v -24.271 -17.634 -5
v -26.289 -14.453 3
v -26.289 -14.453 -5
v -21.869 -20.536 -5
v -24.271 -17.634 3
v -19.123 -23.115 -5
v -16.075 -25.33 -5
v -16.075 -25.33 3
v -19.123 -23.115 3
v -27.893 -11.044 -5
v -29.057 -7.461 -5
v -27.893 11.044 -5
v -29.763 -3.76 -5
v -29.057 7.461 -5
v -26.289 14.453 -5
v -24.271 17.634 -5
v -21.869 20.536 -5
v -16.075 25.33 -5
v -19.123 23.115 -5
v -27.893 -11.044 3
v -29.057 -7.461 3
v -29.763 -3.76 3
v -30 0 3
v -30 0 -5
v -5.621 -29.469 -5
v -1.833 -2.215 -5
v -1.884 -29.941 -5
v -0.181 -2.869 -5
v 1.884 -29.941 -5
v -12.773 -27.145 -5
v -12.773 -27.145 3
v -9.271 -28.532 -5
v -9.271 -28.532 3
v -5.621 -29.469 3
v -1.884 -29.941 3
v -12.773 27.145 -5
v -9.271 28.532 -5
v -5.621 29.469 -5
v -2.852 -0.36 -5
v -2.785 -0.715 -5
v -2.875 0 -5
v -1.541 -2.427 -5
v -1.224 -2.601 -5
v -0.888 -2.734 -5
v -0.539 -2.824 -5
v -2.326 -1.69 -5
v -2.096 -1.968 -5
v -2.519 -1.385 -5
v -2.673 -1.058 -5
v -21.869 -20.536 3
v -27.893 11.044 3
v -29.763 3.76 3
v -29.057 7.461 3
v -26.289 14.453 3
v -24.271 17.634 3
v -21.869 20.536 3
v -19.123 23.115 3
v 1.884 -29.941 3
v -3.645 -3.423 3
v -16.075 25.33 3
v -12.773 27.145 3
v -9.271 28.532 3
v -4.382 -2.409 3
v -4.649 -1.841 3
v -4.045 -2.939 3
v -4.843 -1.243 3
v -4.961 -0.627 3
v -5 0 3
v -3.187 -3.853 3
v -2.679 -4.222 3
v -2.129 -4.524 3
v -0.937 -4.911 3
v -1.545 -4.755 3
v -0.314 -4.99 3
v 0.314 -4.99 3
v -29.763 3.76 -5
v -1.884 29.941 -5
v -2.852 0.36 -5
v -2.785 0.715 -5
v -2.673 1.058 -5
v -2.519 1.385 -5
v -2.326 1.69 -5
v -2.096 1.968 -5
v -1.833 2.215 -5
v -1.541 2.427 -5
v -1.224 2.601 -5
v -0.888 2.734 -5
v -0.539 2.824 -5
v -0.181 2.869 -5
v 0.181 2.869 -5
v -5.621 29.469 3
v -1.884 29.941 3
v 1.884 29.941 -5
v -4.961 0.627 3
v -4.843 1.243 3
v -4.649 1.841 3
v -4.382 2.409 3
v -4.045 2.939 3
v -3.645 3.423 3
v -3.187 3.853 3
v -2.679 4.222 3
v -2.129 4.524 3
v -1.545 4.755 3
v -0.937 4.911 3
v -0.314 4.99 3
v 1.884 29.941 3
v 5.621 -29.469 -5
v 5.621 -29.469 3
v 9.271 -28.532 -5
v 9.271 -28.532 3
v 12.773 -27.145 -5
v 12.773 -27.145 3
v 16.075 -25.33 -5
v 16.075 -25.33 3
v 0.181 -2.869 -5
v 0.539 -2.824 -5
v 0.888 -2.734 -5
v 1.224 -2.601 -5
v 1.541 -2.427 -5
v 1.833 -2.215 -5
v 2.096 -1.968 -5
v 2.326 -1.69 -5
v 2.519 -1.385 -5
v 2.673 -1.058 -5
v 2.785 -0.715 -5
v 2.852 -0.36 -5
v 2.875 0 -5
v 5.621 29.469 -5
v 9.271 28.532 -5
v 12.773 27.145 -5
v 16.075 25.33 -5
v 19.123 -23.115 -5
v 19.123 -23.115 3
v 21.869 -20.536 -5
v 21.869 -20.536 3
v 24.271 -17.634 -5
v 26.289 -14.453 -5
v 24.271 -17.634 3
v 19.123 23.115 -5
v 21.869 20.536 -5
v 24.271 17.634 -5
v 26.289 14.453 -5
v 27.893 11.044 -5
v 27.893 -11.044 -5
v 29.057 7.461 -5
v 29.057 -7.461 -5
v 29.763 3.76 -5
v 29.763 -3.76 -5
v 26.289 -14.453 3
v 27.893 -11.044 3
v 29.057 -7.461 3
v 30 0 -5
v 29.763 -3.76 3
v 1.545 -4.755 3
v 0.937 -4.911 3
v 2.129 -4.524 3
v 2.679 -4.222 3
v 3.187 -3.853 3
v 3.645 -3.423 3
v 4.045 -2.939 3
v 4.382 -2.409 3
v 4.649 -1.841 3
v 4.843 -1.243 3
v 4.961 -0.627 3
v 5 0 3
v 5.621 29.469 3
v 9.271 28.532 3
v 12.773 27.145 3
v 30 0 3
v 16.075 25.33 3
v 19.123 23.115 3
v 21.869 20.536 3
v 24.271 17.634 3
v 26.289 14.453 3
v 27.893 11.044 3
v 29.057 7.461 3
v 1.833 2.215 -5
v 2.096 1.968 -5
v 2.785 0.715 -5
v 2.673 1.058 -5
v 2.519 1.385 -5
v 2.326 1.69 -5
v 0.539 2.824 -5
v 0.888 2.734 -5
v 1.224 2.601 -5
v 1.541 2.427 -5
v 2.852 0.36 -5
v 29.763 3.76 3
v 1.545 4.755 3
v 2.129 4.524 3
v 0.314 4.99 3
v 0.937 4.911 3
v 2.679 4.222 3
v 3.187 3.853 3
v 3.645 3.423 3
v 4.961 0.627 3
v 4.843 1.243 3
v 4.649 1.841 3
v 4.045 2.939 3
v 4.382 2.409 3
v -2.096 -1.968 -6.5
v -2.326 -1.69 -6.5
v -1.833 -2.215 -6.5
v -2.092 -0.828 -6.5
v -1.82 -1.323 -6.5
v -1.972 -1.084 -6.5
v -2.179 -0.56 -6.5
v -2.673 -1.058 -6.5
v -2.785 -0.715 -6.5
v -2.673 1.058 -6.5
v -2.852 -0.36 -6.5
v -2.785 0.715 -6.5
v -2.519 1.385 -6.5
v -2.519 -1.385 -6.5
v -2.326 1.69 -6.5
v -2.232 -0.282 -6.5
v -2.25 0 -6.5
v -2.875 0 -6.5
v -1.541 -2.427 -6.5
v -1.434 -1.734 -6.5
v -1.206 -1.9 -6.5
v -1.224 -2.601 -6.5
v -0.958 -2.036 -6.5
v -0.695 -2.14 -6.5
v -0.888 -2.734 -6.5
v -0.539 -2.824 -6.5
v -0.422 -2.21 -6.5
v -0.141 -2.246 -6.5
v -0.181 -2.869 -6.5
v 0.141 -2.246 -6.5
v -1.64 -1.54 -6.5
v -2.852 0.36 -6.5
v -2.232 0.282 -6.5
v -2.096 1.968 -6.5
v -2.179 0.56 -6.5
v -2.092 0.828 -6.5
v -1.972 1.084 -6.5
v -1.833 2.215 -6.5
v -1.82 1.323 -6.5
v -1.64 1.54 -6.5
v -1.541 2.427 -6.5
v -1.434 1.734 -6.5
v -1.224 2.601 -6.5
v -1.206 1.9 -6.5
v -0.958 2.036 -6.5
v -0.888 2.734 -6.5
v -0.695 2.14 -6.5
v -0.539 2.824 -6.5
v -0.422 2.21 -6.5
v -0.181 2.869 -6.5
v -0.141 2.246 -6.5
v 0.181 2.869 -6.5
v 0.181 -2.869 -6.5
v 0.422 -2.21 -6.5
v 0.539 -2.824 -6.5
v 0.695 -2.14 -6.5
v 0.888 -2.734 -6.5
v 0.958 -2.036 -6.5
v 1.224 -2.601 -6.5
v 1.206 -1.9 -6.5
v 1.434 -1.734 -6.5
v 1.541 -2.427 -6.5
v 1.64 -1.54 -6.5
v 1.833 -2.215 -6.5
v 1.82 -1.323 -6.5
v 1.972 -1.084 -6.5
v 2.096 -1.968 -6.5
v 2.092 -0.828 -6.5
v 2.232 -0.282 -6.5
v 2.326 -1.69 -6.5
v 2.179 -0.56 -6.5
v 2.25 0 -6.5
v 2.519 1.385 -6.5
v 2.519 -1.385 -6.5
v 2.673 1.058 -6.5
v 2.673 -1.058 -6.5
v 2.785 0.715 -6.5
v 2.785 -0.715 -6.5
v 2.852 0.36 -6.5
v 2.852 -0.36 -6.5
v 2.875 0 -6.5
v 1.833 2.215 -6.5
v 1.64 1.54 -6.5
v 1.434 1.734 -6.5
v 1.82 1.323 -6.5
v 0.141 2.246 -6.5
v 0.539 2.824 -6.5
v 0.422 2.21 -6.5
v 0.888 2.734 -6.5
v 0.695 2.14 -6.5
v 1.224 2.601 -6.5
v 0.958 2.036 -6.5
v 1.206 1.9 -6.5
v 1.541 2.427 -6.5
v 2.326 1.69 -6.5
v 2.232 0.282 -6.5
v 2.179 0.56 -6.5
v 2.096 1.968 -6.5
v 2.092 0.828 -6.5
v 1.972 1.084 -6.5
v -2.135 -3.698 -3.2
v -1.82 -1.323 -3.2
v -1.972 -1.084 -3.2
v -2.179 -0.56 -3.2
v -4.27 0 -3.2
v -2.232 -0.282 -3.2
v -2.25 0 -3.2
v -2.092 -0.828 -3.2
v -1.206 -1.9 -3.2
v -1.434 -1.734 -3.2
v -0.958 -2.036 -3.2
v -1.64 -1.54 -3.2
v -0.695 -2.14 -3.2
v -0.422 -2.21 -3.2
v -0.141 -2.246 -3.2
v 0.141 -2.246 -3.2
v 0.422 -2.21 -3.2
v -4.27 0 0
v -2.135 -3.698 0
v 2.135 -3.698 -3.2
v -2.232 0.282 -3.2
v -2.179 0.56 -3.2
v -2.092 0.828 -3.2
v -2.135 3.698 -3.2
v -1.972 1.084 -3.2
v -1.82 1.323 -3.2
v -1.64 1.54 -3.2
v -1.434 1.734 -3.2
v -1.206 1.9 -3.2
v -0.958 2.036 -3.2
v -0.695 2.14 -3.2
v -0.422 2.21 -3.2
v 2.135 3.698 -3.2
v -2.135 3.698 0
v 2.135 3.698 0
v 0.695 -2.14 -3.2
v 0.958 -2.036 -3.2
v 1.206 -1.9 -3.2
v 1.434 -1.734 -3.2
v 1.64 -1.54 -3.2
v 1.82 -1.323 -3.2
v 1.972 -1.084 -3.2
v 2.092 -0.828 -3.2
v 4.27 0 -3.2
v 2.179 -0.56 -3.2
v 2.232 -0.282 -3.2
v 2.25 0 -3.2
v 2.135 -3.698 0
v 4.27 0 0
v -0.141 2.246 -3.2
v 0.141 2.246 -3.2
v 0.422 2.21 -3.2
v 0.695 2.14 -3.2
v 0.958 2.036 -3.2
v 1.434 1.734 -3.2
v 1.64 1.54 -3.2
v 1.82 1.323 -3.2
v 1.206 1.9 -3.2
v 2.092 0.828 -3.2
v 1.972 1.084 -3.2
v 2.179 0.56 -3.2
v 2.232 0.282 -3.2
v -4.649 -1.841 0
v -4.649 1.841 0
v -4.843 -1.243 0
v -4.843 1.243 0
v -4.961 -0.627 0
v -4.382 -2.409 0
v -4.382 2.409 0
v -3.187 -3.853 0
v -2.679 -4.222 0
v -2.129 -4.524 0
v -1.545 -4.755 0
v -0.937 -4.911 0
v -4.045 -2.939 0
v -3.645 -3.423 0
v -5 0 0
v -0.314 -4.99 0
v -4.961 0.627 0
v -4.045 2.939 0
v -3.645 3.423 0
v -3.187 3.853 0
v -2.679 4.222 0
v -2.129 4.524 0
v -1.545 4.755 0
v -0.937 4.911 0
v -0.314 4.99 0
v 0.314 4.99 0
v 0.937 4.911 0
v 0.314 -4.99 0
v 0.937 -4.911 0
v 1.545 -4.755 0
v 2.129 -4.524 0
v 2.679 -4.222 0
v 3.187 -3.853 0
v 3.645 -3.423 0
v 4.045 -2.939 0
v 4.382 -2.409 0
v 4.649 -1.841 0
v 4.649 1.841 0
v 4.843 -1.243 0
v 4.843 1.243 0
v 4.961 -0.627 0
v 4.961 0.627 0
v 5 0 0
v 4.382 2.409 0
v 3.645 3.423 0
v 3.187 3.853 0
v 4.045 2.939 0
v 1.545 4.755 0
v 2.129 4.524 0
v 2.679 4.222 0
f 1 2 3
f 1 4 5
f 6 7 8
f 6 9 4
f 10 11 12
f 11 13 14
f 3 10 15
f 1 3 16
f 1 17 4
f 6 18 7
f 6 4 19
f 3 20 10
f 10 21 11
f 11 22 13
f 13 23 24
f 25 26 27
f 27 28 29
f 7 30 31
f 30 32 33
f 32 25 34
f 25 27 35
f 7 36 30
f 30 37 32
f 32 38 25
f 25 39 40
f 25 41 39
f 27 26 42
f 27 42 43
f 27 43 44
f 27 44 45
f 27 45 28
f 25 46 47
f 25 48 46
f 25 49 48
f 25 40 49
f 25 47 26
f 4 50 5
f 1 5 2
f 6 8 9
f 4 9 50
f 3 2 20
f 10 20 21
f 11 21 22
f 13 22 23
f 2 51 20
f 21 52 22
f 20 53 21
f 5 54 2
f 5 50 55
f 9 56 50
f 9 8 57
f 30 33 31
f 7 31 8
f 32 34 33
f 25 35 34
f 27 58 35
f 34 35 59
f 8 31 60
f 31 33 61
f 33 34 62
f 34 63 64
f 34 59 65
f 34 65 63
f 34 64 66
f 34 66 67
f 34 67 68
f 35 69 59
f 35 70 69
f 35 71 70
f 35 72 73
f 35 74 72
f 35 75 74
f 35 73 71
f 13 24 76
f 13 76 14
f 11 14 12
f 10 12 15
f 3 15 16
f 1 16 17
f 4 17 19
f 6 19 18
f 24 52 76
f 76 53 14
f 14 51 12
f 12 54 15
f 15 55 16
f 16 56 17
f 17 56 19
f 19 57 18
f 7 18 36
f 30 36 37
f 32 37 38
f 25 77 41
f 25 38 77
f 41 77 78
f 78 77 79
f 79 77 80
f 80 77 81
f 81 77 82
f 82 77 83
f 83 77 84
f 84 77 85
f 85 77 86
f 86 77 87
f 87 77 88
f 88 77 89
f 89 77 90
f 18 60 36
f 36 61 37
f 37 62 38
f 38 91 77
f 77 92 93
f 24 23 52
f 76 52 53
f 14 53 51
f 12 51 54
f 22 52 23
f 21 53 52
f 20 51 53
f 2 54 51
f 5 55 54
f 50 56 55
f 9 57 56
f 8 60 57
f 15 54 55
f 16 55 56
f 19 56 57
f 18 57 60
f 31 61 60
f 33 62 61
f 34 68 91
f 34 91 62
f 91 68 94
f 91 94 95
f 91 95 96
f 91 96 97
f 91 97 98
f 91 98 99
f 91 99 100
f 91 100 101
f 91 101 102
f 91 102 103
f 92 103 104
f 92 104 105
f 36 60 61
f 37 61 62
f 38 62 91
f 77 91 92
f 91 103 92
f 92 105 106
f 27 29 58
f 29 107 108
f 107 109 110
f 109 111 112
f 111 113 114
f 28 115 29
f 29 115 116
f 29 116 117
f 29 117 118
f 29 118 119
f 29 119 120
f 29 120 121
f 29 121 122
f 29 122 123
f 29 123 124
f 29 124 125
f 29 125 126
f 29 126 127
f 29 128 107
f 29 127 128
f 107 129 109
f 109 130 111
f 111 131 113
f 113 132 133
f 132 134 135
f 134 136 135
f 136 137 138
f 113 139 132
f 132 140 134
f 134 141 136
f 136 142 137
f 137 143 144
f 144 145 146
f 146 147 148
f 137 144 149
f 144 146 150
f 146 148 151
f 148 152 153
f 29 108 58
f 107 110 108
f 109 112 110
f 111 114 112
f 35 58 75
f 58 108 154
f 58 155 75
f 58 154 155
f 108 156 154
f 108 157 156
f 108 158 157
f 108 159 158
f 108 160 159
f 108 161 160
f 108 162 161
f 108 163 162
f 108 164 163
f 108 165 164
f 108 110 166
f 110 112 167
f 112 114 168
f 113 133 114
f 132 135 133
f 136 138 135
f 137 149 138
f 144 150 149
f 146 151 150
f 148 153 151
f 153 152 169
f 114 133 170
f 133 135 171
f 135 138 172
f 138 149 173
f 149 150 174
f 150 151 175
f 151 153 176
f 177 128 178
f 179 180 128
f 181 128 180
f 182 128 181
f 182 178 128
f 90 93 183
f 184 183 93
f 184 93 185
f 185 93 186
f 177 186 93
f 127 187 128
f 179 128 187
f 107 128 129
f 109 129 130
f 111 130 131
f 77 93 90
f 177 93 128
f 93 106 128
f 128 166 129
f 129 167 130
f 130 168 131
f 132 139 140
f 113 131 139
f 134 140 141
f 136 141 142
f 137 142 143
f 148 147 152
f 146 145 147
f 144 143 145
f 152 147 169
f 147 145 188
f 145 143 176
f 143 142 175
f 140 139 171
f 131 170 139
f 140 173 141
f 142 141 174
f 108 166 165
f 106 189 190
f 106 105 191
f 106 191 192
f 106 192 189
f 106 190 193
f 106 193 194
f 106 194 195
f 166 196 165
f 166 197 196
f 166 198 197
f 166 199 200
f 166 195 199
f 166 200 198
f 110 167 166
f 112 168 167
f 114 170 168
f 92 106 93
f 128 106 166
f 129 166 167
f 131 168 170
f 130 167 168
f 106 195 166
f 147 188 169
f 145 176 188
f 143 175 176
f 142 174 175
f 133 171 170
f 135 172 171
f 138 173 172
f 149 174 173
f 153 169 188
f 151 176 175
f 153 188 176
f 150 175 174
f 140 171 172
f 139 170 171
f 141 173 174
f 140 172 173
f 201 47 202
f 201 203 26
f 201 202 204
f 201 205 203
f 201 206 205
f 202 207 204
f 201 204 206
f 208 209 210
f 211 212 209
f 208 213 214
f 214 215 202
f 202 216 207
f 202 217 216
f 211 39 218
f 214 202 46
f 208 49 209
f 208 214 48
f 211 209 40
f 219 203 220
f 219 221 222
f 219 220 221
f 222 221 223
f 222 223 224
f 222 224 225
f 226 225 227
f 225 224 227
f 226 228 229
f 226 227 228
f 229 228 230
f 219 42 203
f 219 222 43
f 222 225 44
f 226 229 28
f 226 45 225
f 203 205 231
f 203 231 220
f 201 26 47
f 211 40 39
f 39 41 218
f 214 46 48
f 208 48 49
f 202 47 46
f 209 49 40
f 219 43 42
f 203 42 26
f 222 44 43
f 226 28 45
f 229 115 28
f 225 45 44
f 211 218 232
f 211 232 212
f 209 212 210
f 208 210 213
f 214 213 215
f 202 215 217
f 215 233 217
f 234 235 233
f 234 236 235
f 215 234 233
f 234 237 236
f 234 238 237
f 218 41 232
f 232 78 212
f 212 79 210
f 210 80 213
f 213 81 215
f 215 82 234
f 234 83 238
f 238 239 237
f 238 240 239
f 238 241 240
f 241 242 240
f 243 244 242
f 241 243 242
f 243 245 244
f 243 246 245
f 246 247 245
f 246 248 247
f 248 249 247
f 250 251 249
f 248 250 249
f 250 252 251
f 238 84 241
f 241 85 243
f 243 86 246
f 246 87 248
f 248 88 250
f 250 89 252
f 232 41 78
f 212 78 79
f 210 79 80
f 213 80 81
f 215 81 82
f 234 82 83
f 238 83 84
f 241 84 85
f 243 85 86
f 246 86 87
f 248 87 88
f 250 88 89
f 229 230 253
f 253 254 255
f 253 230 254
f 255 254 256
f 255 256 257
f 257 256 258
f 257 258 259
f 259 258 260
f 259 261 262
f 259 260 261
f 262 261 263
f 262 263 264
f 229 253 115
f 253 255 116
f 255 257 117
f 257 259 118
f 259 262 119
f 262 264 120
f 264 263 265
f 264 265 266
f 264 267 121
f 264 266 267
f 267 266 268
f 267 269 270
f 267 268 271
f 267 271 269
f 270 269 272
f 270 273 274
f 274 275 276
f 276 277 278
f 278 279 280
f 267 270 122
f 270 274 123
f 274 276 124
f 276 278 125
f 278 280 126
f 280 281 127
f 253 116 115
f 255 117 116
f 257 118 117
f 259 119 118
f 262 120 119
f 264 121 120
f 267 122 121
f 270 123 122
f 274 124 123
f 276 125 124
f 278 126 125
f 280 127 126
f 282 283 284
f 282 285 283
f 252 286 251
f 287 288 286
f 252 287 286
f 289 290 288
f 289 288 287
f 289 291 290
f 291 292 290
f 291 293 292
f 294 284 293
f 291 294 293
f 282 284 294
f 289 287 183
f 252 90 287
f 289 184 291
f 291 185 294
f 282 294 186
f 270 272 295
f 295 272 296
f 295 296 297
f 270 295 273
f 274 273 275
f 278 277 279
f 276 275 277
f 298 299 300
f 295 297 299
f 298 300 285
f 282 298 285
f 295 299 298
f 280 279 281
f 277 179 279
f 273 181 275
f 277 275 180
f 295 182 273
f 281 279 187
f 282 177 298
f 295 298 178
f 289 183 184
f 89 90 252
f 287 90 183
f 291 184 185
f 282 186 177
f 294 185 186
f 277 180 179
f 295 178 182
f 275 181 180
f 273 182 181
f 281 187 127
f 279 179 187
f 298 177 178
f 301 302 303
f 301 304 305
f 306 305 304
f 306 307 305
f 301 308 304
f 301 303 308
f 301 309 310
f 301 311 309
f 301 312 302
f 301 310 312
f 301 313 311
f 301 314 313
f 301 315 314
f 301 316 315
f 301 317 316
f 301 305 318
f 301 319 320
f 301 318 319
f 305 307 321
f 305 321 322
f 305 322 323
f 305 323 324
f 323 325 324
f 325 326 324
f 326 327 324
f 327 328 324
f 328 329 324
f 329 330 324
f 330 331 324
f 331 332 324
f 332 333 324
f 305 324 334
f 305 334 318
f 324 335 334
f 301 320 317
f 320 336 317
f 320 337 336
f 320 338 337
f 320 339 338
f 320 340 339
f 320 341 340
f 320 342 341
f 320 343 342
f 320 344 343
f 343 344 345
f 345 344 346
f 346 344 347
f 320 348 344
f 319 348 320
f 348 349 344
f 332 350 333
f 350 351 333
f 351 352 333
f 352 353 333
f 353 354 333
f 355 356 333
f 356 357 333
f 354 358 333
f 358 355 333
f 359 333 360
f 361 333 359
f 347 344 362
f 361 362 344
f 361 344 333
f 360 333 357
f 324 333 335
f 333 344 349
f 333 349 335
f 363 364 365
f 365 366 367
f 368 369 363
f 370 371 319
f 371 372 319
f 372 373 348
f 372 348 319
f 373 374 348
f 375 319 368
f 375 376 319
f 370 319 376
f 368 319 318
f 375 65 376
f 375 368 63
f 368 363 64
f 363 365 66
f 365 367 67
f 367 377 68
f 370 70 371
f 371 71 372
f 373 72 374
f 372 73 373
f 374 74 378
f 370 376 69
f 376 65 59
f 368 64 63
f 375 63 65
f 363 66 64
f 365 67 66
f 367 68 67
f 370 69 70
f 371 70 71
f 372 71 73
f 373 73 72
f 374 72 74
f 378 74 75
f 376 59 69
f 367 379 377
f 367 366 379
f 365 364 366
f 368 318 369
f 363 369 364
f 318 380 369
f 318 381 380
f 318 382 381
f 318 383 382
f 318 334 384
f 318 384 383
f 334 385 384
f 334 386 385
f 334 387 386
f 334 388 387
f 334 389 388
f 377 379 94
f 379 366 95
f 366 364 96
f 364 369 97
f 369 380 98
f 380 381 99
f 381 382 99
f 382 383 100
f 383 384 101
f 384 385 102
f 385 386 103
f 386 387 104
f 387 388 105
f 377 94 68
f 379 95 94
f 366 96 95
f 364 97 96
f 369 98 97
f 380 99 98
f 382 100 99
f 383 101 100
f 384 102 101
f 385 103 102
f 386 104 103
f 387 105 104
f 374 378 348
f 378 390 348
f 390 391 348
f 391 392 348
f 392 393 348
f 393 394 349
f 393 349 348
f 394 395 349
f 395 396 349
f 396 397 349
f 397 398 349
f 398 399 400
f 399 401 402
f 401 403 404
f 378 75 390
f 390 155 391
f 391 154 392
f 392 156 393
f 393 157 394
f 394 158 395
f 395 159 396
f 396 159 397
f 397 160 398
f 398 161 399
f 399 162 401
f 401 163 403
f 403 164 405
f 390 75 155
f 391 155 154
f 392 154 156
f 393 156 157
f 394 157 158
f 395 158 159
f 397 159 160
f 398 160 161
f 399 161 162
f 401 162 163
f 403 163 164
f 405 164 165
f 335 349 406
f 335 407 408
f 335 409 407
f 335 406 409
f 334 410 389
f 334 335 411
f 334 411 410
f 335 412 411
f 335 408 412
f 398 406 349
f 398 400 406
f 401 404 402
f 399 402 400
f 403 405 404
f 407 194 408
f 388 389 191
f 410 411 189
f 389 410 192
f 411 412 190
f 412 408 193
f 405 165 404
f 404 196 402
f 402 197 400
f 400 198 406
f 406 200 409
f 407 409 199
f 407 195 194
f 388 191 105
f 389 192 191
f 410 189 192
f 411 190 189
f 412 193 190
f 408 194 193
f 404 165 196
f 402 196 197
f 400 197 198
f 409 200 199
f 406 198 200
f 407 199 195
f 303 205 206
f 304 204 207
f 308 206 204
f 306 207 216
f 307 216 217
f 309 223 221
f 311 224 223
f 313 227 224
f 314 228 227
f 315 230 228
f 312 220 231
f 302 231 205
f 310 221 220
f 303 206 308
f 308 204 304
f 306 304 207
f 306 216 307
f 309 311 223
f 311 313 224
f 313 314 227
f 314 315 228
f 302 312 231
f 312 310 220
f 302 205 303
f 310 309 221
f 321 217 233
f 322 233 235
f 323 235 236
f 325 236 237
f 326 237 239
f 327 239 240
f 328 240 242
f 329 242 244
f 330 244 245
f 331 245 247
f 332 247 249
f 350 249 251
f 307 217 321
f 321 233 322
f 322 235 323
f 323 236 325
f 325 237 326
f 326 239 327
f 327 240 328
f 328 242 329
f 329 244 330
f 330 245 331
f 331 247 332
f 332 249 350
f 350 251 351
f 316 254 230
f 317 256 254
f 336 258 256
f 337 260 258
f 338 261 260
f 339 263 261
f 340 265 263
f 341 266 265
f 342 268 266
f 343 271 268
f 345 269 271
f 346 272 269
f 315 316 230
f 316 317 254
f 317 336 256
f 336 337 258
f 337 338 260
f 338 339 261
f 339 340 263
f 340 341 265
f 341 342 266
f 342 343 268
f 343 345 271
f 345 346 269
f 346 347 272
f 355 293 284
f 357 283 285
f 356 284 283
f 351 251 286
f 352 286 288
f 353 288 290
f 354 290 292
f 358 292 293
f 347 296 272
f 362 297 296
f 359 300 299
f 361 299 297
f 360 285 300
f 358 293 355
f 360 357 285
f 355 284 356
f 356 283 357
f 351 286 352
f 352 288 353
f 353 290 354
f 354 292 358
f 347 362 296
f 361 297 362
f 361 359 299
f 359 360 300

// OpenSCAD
$fn = 50;


difference() {
	union() {
		translate(v = [0, 0, -5.0000000000]) {
			cylinder(h = 8.0000000000, r = 30.0000000000);
		}
		#translate(v = [0, 0, -6.5000000000]) {
			cylinder(h = 6.5000000000, r = 2.8750000000);
		}
	}
	union() {
		translate(v = [0, 0, 0]) {
			rotate(a = [0, 0, 0]) {
				difference() {
					union() {
						translate(v = [0, 0, -3.2000000000]) {
							linear_extrude(height = 3.2000000000) {
								polygon(points = [[4.2698000000, 0.0000000000], [2.1349000000, 3.6977552691], [-2.1349000000, 3.6977552691], [-4.2698000000, 0.0000000000], [-2.1349000000, -3.6977552691], [2.1349000000, -3.6977552691]]);
							}
						}
					}
					union();
				}
			}
		}
		#cylinder(h = 3, r = 5.0000000000);
		#translate(v = [0, 0, -100.0000000000]) {
			cylinder(h = 200, r = 2.2500000000);
		}
	}
}
